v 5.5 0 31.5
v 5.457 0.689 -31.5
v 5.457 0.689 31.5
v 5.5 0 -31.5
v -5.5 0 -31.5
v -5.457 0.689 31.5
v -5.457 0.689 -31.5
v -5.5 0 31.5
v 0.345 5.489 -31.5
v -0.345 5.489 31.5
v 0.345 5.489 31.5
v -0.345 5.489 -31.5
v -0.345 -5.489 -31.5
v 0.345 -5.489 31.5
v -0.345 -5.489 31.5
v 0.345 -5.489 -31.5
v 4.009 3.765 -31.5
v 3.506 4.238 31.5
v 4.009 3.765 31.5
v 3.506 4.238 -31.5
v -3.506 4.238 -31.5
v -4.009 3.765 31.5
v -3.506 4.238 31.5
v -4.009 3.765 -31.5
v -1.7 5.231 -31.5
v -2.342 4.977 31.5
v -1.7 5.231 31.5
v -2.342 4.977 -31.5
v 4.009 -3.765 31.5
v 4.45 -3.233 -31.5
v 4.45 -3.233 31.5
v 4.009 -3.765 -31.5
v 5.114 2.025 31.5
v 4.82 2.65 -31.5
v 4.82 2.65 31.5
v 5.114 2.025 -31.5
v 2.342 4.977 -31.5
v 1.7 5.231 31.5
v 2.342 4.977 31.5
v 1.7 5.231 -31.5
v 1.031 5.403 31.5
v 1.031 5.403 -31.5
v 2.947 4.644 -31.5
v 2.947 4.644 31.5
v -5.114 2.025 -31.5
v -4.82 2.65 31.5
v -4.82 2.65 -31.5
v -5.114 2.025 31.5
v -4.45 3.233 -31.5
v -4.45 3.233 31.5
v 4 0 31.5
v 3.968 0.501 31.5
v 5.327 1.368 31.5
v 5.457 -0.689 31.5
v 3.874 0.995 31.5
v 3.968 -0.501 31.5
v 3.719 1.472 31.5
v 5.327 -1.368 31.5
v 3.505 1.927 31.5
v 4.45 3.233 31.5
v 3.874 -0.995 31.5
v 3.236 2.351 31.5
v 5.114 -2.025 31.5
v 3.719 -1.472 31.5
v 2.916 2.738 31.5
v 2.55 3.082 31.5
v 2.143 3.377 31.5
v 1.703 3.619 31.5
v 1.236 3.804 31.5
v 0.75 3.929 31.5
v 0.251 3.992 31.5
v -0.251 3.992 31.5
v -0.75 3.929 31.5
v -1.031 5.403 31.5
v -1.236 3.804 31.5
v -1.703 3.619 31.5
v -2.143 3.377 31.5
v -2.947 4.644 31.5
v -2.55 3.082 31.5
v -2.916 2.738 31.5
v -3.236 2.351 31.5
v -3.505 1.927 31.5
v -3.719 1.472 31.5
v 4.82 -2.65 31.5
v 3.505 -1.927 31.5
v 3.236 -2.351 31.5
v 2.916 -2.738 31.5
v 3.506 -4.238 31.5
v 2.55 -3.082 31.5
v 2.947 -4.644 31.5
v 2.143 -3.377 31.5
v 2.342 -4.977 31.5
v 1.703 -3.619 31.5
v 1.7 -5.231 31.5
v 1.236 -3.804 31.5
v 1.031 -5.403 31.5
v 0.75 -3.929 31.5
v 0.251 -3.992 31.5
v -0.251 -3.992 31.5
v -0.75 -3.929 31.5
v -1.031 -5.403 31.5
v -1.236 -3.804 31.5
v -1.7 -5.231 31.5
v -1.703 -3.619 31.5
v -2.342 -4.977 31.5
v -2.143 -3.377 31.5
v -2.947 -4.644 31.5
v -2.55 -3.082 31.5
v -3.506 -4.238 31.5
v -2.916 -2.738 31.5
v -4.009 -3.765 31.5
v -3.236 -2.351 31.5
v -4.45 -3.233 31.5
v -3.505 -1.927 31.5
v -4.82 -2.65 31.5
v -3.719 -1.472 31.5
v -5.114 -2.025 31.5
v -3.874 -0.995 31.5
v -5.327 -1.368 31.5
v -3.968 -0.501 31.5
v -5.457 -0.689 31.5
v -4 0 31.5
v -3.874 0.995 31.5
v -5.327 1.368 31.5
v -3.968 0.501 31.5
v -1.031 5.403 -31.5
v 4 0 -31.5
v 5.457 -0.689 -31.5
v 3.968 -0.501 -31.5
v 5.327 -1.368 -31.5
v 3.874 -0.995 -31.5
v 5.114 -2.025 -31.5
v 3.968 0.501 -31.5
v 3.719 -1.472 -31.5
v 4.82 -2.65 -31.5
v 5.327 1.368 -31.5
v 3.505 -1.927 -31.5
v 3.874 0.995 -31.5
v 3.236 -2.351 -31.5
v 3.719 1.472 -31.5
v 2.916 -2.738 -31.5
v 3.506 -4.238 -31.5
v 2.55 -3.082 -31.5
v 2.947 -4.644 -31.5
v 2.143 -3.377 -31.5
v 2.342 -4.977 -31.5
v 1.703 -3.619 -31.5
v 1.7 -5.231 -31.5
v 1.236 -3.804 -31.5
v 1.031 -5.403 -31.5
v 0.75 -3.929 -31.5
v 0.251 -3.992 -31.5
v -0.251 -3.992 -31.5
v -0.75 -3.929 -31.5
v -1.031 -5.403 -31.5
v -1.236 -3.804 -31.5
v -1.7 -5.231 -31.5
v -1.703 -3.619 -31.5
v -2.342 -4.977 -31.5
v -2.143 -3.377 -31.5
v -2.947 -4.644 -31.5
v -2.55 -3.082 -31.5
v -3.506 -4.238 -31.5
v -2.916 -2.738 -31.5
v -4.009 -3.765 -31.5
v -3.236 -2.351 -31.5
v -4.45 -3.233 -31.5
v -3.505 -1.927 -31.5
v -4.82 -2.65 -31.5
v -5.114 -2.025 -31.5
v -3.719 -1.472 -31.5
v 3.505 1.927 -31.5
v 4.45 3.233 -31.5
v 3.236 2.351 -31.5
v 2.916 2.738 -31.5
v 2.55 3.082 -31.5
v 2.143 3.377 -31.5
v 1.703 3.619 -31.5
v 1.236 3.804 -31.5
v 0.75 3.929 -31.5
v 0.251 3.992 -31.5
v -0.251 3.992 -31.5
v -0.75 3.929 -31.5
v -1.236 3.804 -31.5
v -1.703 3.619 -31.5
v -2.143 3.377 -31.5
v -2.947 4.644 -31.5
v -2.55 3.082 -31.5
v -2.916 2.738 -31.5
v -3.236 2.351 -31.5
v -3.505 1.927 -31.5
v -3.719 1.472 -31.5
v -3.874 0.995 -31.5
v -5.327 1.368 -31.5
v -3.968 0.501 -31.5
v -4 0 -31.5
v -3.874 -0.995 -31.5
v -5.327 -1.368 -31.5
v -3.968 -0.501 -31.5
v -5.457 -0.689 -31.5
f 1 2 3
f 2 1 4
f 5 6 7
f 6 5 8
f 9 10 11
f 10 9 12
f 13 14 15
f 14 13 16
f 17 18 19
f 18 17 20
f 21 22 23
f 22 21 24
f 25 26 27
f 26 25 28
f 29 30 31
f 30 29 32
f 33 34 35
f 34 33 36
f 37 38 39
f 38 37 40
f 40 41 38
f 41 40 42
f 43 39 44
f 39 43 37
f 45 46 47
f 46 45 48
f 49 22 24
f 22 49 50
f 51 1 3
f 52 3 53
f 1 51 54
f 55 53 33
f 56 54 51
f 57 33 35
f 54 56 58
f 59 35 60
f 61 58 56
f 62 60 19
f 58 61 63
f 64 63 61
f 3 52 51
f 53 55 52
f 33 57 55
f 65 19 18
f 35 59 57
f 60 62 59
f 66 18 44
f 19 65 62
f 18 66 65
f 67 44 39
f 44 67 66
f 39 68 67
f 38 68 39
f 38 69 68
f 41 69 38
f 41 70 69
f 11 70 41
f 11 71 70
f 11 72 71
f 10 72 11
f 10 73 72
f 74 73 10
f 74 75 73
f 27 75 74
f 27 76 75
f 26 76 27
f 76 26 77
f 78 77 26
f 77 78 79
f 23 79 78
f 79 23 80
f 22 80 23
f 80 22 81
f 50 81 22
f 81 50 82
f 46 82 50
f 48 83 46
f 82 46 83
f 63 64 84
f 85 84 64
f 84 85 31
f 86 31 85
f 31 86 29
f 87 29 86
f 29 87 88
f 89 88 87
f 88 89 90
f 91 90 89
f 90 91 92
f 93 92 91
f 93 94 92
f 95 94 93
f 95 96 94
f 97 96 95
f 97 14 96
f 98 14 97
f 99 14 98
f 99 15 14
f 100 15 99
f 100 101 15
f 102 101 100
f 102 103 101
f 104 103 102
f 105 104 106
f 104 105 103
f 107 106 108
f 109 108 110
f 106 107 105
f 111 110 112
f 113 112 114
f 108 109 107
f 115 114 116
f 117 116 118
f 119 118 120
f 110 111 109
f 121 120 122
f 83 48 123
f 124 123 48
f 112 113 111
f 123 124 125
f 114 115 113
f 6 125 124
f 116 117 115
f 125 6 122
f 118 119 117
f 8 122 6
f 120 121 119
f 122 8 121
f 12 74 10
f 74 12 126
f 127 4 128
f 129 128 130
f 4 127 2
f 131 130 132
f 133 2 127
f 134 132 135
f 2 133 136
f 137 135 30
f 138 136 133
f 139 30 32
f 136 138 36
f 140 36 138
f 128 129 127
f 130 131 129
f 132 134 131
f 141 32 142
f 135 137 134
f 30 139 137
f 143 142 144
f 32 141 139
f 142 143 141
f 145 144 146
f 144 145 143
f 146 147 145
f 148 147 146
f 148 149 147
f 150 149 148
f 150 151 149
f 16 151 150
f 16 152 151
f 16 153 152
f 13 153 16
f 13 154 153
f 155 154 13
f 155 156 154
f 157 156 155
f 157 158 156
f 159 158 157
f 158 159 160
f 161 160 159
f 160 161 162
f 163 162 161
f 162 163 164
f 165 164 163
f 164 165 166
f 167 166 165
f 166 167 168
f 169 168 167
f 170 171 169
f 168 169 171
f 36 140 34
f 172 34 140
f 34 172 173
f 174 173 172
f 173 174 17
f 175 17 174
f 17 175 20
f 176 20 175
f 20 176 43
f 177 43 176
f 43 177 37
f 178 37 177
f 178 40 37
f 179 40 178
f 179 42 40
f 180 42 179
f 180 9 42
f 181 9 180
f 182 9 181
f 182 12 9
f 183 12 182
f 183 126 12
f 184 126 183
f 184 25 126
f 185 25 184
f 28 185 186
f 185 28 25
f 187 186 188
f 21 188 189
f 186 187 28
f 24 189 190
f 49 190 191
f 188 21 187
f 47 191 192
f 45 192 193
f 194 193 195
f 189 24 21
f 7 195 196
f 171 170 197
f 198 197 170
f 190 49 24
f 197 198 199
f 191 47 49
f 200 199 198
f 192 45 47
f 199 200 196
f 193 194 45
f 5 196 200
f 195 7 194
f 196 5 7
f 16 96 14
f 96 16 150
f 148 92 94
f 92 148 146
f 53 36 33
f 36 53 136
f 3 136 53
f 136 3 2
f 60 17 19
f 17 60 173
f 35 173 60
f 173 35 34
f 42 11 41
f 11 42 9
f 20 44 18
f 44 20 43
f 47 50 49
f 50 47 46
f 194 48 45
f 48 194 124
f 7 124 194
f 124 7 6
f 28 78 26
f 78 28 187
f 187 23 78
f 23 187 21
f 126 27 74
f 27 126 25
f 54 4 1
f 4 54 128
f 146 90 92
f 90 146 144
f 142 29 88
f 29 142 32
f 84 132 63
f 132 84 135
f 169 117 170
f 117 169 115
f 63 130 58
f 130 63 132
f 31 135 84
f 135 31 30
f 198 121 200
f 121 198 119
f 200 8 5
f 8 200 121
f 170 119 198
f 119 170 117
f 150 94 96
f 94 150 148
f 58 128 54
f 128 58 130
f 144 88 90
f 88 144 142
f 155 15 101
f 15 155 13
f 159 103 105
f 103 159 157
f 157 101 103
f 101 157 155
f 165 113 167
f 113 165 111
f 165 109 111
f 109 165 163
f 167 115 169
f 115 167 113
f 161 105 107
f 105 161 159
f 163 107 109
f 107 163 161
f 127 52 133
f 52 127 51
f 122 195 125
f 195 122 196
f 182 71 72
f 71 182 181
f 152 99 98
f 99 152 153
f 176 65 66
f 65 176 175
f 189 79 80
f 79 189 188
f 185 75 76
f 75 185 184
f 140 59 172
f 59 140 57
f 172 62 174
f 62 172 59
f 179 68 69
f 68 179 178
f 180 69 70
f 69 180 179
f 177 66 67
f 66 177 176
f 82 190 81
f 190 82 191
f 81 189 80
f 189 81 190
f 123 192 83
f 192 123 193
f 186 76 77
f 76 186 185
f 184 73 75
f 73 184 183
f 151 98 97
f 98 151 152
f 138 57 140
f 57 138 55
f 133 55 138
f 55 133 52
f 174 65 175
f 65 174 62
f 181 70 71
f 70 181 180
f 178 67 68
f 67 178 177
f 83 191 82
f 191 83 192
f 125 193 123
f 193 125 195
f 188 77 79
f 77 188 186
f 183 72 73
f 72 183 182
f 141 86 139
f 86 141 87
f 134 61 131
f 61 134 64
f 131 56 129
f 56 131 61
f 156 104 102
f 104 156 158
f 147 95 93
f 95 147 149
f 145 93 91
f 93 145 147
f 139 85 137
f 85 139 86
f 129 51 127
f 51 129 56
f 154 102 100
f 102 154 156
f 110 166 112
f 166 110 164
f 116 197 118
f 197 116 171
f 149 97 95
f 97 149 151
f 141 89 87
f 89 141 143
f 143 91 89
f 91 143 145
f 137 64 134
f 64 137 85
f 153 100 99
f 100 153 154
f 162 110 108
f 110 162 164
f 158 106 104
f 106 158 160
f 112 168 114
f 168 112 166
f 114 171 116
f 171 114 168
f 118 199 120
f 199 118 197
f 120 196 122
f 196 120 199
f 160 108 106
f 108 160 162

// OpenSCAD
$fn = 50;


difference() {
	union() {
		translate(v = [0, 0, -31.5000000000]) {
			cylinder(h = 63, r = 5.5000000000);
		}
	}
	union() {
		translate(v = [0, 0, -100.0000000000]) {
			cylinder(h = 200, r = 4);
		}
	}
}
